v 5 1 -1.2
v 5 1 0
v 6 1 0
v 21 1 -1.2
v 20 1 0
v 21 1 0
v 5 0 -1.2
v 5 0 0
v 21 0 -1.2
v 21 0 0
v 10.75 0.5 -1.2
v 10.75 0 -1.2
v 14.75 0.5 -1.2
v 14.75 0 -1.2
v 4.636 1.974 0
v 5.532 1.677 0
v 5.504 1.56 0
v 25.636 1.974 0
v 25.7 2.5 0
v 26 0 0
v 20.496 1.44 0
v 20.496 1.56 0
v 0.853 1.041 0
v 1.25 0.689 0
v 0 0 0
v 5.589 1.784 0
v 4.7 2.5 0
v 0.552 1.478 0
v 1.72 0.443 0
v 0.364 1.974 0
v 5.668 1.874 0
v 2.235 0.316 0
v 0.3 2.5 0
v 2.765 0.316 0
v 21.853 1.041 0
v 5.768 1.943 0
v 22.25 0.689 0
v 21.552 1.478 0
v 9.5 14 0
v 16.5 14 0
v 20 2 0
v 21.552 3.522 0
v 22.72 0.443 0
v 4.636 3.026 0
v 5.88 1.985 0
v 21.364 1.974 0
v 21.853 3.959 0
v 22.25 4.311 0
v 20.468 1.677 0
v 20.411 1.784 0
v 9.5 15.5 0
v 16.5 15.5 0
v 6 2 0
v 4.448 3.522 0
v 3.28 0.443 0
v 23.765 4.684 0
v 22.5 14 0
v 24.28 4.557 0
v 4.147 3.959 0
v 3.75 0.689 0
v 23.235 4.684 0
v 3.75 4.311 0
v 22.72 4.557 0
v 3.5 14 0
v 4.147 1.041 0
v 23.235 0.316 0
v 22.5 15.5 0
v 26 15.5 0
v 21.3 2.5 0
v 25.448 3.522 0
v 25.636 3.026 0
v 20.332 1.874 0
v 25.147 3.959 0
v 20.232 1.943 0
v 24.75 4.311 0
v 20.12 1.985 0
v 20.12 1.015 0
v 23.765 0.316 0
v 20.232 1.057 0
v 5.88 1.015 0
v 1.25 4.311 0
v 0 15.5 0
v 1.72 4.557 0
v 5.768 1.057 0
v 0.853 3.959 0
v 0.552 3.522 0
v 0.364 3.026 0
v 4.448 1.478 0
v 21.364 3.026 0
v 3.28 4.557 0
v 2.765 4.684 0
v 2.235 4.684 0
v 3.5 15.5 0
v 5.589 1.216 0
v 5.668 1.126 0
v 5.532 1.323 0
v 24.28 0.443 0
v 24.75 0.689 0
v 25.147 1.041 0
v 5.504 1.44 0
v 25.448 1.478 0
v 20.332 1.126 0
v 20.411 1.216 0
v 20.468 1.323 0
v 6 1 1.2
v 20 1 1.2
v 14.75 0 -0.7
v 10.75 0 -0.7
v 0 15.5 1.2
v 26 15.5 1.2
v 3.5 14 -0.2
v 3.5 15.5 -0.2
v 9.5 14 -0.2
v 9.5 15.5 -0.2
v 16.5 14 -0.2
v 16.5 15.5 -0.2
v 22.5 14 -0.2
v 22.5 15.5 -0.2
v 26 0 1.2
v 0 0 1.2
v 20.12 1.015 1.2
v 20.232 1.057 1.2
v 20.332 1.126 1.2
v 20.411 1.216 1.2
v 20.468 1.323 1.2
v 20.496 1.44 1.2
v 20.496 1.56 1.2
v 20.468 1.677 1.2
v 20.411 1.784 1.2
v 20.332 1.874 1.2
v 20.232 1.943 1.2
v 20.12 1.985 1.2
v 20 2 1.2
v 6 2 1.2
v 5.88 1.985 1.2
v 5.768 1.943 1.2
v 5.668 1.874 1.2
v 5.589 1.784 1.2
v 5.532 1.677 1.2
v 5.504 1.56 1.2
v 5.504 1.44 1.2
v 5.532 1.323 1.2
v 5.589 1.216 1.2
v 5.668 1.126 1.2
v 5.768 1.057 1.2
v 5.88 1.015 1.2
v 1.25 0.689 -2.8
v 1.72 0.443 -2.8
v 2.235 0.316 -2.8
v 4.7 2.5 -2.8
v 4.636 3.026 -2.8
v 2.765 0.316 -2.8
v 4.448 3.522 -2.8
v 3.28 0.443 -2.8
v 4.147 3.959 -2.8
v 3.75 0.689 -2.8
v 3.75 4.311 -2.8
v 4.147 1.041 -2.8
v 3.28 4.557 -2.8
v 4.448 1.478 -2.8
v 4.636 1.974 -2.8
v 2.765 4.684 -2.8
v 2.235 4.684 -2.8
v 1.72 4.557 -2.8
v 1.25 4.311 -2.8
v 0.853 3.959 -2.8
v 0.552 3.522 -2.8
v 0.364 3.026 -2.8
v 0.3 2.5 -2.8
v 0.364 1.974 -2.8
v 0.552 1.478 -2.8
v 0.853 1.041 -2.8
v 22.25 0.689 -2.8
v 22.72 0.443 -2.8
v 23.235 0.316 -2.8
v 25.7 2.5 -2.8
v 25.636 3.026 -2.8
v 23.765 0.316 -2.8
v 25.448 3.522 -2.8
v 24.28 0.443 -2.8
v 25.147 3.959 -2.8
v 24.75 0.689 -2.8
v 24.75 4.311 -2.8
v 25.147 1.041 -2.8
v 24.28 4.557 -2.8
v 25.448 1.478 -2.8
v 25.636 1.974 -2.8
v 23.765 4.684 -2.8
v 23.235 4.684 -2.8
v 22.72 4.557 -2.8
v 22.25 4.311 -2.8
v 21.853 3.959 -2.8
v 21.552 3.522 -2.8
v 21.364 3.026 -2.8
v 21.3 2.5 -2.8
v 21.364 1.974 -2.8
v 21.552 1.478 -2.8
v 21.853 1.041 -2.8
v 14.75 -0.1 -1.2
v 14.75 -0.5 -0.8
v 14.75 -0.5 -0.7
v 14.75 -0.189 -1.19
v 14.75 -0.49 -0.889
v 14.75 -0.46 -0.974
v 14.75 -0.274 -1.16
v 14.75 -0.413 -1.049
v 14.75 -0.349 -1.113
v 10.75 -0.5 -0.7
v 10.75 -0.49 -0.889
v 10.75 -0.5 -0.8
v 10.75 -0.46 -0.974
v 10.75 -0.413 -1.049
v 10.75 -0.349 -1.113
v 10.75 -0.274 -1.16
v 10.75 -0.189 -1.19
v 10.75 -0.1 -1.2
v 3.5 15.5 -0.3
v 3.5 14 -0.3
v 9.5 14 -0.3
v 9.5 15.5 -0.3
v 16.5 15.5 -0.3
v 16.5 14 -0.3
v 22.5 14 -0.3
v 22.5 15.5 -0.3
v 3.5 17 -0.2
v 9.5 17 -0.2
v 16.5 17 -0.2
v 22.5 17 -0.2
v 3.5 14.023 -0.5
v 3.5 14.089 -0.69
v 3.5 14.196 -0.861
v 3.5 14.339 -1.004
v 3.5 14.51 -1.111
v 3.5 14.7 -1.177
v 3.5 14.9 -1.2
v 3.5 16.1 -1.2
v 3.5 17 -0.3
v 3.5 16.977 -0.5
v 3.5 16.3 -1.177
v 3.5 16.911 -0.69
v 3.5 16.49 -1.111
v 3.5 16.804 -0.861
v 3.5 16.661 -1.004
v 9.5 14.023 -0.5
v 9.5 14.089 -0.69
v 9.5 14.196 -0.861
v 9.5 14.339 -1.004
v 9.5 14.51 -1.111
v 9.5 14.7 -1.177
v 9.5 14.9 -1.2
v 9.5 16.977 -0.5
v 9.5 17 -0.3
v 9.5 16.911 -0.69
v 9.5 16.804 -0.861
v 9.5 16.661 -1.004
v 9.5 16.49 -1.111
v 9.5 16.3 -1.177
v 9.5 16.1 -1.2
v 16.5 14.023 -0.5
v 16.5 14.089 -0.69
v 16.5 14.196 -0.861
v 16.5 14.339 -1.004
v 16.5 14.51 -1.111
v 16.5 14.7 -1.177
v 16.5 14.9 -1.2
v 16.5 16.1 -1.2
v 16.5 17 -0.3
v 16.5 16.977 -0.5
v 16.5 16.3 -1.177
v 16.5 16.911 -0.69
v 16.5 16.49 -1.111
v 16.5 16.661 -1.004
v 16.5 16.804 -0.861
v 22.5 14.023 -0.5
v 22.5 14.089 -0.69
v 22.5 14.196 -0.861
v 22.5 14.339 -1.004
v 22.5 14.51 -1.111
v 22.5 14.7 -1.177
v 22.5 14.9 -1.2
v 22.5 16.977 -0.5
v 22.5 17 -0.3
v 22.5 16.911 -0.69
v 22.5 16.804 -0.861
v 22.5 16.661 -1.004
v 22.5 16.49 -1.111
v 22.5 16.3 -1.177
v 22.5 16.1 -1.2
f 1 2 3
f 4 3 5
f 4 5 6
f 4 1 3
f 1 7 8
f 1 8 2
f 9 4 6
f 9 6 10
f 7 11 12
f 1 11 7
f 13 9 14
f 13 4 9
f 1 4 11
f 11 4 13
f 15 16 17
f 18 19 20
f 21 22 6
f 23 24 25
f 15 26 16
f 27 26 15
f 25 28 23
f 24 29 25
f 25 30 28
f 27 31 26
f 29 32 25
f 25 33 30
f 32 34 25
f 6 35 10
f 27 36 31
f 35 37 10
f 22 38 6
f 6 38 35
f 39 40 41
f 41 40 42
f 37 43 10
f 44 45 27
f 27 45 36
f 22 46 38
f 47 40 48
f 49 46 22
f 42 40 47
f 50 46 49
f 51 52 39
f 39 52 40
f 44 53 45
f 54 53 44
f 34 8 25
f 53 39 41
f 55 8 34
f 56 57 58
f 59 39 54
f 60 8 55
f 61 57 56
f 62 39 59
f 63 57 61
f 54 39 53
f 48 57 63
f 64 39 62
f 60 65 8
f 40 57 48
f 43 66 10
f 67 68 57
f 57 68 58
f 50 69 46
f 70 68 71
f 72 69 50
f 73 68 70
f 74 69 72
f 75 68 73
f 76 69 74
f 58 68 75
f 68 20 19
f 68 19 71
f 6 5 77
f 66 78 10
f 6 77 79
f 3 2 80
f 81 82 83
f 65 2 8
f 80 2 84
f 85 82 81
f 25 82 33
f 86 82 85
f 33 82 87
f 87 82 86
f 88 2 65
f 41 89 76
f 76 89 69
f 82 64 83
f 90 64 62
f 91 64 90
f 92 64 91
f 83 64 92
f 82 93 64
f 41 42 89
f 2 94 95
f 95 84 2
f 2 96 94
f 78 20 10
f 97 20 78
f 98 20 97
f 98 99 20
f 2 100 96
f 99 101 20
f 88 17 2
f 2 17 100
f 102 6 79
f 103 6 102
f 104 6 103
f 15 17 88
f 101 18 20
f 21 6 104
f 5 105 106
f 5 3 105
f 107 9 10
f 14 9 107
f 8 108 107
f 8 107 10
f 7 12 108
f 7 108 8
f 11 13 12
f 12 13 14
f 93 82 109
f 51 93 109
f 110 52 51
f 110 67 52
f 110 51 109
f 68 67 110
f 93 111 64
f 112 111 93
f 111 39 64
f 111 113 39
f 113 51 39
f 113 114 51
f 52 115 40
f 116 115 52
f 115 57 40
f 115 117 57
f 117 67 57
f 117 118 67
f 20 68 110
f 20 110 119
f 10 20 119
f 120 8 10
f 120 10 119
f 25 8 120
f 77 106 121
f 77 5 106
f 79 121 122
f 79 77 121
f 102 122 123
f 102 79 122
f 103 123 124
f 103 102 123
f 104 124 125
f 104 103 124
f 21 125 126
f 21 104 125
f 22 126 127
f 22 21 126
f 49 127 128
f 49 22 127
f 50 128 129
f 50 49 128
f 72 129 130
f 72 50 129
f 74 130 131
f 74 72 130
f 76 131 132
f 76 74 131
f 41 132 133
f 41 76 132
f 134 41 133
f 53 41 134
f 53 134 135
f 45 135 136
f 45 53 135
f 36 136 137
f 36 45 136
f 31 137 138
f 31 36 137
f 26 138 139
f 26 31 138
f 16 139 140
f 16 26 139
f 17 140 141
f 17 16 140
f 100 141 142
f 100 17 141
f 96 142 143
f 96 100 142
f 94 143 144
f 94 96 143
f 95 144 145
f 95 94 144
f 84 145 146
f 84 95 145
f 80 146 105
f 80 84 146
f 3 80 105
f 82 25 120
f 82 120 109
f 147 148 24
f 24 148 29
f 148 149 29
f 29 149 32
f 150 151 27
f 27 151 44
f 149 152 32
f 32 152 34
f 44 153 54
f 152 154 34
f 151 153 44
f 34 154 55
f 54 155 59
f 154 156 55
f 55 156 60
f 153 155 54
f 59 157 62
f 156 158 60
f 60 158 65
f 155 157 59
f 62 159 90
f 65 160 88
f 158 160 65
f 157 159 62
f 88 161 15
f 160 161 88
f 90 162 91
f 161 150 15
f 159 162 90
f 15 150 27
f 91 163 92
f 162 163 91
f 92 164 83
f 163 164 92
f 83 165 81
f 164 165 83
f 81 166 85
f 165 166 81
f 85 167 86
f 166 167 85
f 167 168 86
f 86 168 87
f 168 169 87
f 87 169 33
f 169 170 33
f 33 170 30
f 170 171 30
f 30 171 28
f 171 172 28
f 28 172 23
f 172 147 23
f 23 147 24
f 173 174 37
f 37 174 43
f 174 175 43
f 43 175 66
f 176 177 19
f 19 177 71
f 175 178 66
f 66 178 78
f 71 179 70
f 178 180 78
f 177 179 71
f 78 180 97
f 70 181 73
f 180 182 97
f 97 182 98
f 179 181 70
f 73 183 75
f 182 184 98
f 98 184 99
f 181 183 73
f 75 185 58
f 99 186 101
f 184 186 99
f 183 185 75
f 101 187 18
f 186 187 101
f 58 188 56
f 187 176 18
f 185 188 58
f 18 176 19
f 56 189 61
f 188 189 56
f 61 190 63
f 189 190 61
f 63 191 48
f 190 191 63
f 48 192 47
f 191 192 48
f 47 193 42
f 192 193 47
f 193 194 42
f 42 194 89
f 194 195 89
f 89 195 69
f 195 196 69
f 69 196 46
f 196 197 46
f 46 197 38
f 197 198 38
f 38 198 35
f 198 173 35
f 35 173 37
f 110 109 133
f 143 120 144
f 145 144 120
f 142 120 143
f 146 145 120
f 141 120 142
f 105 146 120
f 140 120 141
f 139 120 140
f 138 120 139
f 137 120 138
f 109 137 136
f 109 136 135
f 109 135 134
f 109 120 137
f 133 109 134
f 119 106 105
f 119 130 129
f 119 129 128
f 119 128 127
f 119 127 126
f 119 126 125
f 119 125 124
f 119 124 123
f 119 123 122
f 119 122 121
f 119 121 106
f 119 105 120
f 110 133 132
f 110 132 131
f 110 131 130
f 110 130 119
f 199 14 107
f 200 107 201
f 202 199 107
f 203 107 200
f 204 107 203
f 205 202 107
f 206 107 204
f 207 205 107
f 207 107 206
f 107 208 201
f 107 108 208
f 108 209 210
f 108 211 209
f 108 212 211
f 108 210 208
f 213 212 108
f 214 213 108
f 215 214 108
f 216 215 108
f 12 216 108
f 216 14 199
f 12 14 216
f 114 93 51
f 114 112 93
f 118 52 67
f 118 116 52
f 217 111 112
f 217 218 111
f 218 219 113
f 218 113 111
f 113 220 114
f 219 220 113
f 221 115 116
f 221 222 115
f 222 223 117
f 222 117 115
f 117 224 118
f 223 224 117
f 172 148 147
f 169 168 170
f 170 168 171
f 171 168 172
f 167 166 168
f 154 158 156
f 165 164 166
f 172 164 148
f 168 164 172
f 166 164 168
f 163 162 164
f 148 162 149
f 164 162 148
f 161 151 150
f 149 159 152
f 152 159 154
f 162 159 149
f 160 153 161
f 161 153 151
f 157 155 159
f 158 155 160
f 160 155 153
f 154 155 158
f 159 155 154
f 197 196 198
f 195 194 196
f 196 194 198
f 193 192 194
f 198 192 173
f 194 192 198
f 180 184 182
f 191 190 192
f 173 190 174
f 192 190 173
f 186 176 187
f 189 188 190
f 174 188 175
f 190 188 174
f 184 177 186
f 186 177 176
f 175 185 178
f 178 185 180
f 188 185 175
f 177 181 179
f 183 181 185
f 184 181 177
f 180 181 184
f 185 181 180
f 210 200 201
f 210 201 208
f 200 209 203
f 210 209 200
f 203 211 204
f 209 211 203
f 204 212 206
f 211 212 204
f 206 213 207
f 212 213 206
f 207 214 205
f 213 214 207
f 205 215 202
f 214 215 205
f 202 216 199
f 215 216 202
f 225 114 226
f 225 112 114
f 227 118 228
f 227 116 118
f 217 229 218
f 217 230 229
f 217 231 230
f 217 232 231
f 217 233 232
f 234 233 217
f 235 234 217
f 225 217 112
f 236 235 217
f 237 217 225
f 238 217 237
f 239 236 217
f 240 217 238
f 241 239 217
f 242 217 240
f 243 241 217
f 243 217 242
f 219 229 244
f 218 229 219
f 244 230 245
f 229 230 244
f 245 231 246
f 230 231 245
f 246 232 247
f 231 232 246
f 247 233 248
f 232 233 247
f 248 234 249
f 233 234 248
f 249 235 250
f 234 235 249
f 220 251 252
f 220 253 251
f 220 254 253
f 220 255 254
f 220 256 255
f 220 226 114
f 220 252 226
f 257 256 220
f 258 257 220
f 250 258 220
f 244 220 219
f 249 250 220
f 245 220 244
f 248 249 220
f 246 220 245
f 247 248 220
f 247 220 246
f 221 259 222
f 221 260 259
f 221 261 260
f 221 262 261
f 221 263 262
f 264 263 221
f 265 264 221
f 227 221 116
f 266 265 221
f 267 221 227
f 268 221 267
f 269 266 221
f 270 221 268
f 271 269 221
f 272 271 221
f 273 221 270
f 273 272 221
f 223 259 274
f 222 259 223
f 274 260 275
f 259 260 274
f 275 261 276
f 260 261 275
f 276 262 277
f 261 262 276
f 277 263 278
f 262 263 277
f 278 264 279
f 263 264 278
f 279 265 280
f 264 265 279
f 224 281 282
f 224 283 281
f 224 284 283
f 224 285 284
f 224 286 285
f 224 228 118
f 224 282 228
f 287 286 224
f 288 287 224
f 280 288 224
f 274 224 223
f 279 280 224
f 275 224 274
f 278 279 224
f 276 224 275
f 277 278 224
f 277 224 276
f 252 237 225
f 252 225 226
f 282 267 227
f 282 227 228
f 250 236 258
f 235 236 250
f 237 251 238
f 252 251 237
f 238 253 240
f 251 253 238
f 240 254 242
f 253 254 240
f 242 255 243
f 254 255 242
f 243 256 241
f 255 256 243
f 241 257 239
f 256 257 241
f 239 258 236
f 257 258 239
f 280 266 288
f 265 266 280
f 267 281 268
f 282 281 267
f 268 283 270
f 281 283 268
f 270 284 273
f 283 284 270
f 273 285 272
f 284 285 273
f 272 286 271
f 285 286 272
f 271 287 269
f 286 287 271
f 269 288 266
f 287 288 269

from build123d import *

# Parameters (mm, degrees)
EXTRUDE006_START = -0.7
SKETCH006_W      = 4
SKETCH006_H      = 1
EXTRUDE006_DEPTH = 0.5
FILLET001_R      = 0.4
SKETCH005_W      = 16
SKETCH005_H      = 1
EXTRUDE005_DEPTH = 1.2
EXTRUDE004_DEPTH = 2
SKETCH002_R      = 2.2
EXTRUDE002_DEPTH = 2.8
SKETCH007_W      = 6
SKETCH007_H      = 1.5
EXTRUDE007_DEPTH = 0.3
EXTRUDE001_START = -0.2
SKETCH001_W      = 6
SKETCH001_H      = 3
EXTRUDE001_DEPTH = 1
FILLET_R         = 0.9
SKETCH_W         = 26
SKETCH_H         = 15.5
EXTRUDE_DEPTH    = 1.2


with BuildPart() as fillet001:
    # Sketch006 → Extrude006 (new body)
    with BuildSketch(Plane.XY.offset(EXTRUDE006_START)):
        with Locations((12.75, 0)):
            Rectangle(SKETCH006_W, SKETCH006_H)
    extrude(amount=-EXTRUDE006_DEPTH)

    # Fillet001
    fillet001_edges = [fillet001.edges().sort_by_distance(p)[0] for p in [
        (12.75, -0.5, -1.2),
    ]]
    fillet(fillet001_edges, radius=FILLET001_R)


with BuildPart() as extrude005:
    # Sketch005 → Extrude005 (new body)
    with BuildSketch(Plane.XY):
        with Locations((13, 0.5)):
            Rectangle(SKETCH005_W, SKETCH005_H)
    extrude(amount=-EXTRUDE005_DEPTH)


with BuildPart() as extrude004:
    # Sketch004 → Extrude004 (new body)
    with BuildSketch(Plane.XY):
        with BuildLine():
            ThreePointArc((6, 2), (5.5, 1.5), (6, 1))
            Line((6, 1), (20, 1))
            ThreePointArc((20, 1), (20.5, 1.5), (20, 2))
            Line((6, 2), (20, 2))
        make_face()
    extrude(amount=EXTRUDE004_DEPTH)


with BuildPart() as extrude002:
    # Sketch002 → Extrude002 (new body)
    with BuildSketch(Plane.XY):
        with Locations((2.5, 2.5)):
            Circle(SKETCH002_R)
        with Locations((23.5, 2.5)):
            Circle(SKETCH002_R)
    extrude(amount=-EXTRUDE002_DEPTH)


with BuildPart() as extrude007:
    # Sketch007 (on Fillet) → Extrude007 (new body)
    with BuildSketch(Plane.XY):
        with Locations((6.5, 14.75)):
            Rectangle(SKETCH007_W, SKETCH007_H)
        with Locations((19.5, 14.75)):
            Rectangle(SKETCH007_W, SKETCH007_H)
    extrude(amount=-EXTRUDE007_DEPTH)


with BuildPart() as fusion005:
    # Sketch001 (on Sketch) → Extrude001 (new body)
    with BuildSketch(Plane.XY.offset(EXTRUDE001_START)):
        with Locations((6.5, 15.5)):
            Rectangle(SKETCH001_W, SKETCH001_H)
        with Locations((19.5, 15.5)):
            Rectangle(SKETCH001_W, SKETCH001_H)
    extrude(amount=-EXTRUDE001_DEPTH)

    # Fillet
    fillet_edges = [fusion005.edges().sort_by_distance(p)[0] for p in [
        (19.5, 17, -1.2),
        (19.5, 14, -1.2),
        (6.5, 17, -1.2),
        (6.5, 14, -1.2),
    ]]
    fillet(fillet_edges, radius=FILLET_R)

    # Fusion005: union Extrude007
    add(extrude007.part)


with BuildPart() as fusion004:
    # Sketch → Extrude (new body)
    with BuildSketch(Plane.XY):
        with Locations((13, 7.75)):
            Rectangle(SKETCH_W, SKETCH_H)
    extrude(amount=EXTRUDE_DEPTH)

    # Fusion: union Fusion005
    add(fusion005.part)

    # Fusion001: union Extrude002
    add(extrude002.part)

    # Cut001: cut Extrude004
    add(extrude004.part, mode=Mode.SUBTRACT)

    # Fusion003: union Extrude005
    add(extrude005.part)

    # Fusion004: union Fillet001
    add(fillet001.part)


solid = fusion004.part
